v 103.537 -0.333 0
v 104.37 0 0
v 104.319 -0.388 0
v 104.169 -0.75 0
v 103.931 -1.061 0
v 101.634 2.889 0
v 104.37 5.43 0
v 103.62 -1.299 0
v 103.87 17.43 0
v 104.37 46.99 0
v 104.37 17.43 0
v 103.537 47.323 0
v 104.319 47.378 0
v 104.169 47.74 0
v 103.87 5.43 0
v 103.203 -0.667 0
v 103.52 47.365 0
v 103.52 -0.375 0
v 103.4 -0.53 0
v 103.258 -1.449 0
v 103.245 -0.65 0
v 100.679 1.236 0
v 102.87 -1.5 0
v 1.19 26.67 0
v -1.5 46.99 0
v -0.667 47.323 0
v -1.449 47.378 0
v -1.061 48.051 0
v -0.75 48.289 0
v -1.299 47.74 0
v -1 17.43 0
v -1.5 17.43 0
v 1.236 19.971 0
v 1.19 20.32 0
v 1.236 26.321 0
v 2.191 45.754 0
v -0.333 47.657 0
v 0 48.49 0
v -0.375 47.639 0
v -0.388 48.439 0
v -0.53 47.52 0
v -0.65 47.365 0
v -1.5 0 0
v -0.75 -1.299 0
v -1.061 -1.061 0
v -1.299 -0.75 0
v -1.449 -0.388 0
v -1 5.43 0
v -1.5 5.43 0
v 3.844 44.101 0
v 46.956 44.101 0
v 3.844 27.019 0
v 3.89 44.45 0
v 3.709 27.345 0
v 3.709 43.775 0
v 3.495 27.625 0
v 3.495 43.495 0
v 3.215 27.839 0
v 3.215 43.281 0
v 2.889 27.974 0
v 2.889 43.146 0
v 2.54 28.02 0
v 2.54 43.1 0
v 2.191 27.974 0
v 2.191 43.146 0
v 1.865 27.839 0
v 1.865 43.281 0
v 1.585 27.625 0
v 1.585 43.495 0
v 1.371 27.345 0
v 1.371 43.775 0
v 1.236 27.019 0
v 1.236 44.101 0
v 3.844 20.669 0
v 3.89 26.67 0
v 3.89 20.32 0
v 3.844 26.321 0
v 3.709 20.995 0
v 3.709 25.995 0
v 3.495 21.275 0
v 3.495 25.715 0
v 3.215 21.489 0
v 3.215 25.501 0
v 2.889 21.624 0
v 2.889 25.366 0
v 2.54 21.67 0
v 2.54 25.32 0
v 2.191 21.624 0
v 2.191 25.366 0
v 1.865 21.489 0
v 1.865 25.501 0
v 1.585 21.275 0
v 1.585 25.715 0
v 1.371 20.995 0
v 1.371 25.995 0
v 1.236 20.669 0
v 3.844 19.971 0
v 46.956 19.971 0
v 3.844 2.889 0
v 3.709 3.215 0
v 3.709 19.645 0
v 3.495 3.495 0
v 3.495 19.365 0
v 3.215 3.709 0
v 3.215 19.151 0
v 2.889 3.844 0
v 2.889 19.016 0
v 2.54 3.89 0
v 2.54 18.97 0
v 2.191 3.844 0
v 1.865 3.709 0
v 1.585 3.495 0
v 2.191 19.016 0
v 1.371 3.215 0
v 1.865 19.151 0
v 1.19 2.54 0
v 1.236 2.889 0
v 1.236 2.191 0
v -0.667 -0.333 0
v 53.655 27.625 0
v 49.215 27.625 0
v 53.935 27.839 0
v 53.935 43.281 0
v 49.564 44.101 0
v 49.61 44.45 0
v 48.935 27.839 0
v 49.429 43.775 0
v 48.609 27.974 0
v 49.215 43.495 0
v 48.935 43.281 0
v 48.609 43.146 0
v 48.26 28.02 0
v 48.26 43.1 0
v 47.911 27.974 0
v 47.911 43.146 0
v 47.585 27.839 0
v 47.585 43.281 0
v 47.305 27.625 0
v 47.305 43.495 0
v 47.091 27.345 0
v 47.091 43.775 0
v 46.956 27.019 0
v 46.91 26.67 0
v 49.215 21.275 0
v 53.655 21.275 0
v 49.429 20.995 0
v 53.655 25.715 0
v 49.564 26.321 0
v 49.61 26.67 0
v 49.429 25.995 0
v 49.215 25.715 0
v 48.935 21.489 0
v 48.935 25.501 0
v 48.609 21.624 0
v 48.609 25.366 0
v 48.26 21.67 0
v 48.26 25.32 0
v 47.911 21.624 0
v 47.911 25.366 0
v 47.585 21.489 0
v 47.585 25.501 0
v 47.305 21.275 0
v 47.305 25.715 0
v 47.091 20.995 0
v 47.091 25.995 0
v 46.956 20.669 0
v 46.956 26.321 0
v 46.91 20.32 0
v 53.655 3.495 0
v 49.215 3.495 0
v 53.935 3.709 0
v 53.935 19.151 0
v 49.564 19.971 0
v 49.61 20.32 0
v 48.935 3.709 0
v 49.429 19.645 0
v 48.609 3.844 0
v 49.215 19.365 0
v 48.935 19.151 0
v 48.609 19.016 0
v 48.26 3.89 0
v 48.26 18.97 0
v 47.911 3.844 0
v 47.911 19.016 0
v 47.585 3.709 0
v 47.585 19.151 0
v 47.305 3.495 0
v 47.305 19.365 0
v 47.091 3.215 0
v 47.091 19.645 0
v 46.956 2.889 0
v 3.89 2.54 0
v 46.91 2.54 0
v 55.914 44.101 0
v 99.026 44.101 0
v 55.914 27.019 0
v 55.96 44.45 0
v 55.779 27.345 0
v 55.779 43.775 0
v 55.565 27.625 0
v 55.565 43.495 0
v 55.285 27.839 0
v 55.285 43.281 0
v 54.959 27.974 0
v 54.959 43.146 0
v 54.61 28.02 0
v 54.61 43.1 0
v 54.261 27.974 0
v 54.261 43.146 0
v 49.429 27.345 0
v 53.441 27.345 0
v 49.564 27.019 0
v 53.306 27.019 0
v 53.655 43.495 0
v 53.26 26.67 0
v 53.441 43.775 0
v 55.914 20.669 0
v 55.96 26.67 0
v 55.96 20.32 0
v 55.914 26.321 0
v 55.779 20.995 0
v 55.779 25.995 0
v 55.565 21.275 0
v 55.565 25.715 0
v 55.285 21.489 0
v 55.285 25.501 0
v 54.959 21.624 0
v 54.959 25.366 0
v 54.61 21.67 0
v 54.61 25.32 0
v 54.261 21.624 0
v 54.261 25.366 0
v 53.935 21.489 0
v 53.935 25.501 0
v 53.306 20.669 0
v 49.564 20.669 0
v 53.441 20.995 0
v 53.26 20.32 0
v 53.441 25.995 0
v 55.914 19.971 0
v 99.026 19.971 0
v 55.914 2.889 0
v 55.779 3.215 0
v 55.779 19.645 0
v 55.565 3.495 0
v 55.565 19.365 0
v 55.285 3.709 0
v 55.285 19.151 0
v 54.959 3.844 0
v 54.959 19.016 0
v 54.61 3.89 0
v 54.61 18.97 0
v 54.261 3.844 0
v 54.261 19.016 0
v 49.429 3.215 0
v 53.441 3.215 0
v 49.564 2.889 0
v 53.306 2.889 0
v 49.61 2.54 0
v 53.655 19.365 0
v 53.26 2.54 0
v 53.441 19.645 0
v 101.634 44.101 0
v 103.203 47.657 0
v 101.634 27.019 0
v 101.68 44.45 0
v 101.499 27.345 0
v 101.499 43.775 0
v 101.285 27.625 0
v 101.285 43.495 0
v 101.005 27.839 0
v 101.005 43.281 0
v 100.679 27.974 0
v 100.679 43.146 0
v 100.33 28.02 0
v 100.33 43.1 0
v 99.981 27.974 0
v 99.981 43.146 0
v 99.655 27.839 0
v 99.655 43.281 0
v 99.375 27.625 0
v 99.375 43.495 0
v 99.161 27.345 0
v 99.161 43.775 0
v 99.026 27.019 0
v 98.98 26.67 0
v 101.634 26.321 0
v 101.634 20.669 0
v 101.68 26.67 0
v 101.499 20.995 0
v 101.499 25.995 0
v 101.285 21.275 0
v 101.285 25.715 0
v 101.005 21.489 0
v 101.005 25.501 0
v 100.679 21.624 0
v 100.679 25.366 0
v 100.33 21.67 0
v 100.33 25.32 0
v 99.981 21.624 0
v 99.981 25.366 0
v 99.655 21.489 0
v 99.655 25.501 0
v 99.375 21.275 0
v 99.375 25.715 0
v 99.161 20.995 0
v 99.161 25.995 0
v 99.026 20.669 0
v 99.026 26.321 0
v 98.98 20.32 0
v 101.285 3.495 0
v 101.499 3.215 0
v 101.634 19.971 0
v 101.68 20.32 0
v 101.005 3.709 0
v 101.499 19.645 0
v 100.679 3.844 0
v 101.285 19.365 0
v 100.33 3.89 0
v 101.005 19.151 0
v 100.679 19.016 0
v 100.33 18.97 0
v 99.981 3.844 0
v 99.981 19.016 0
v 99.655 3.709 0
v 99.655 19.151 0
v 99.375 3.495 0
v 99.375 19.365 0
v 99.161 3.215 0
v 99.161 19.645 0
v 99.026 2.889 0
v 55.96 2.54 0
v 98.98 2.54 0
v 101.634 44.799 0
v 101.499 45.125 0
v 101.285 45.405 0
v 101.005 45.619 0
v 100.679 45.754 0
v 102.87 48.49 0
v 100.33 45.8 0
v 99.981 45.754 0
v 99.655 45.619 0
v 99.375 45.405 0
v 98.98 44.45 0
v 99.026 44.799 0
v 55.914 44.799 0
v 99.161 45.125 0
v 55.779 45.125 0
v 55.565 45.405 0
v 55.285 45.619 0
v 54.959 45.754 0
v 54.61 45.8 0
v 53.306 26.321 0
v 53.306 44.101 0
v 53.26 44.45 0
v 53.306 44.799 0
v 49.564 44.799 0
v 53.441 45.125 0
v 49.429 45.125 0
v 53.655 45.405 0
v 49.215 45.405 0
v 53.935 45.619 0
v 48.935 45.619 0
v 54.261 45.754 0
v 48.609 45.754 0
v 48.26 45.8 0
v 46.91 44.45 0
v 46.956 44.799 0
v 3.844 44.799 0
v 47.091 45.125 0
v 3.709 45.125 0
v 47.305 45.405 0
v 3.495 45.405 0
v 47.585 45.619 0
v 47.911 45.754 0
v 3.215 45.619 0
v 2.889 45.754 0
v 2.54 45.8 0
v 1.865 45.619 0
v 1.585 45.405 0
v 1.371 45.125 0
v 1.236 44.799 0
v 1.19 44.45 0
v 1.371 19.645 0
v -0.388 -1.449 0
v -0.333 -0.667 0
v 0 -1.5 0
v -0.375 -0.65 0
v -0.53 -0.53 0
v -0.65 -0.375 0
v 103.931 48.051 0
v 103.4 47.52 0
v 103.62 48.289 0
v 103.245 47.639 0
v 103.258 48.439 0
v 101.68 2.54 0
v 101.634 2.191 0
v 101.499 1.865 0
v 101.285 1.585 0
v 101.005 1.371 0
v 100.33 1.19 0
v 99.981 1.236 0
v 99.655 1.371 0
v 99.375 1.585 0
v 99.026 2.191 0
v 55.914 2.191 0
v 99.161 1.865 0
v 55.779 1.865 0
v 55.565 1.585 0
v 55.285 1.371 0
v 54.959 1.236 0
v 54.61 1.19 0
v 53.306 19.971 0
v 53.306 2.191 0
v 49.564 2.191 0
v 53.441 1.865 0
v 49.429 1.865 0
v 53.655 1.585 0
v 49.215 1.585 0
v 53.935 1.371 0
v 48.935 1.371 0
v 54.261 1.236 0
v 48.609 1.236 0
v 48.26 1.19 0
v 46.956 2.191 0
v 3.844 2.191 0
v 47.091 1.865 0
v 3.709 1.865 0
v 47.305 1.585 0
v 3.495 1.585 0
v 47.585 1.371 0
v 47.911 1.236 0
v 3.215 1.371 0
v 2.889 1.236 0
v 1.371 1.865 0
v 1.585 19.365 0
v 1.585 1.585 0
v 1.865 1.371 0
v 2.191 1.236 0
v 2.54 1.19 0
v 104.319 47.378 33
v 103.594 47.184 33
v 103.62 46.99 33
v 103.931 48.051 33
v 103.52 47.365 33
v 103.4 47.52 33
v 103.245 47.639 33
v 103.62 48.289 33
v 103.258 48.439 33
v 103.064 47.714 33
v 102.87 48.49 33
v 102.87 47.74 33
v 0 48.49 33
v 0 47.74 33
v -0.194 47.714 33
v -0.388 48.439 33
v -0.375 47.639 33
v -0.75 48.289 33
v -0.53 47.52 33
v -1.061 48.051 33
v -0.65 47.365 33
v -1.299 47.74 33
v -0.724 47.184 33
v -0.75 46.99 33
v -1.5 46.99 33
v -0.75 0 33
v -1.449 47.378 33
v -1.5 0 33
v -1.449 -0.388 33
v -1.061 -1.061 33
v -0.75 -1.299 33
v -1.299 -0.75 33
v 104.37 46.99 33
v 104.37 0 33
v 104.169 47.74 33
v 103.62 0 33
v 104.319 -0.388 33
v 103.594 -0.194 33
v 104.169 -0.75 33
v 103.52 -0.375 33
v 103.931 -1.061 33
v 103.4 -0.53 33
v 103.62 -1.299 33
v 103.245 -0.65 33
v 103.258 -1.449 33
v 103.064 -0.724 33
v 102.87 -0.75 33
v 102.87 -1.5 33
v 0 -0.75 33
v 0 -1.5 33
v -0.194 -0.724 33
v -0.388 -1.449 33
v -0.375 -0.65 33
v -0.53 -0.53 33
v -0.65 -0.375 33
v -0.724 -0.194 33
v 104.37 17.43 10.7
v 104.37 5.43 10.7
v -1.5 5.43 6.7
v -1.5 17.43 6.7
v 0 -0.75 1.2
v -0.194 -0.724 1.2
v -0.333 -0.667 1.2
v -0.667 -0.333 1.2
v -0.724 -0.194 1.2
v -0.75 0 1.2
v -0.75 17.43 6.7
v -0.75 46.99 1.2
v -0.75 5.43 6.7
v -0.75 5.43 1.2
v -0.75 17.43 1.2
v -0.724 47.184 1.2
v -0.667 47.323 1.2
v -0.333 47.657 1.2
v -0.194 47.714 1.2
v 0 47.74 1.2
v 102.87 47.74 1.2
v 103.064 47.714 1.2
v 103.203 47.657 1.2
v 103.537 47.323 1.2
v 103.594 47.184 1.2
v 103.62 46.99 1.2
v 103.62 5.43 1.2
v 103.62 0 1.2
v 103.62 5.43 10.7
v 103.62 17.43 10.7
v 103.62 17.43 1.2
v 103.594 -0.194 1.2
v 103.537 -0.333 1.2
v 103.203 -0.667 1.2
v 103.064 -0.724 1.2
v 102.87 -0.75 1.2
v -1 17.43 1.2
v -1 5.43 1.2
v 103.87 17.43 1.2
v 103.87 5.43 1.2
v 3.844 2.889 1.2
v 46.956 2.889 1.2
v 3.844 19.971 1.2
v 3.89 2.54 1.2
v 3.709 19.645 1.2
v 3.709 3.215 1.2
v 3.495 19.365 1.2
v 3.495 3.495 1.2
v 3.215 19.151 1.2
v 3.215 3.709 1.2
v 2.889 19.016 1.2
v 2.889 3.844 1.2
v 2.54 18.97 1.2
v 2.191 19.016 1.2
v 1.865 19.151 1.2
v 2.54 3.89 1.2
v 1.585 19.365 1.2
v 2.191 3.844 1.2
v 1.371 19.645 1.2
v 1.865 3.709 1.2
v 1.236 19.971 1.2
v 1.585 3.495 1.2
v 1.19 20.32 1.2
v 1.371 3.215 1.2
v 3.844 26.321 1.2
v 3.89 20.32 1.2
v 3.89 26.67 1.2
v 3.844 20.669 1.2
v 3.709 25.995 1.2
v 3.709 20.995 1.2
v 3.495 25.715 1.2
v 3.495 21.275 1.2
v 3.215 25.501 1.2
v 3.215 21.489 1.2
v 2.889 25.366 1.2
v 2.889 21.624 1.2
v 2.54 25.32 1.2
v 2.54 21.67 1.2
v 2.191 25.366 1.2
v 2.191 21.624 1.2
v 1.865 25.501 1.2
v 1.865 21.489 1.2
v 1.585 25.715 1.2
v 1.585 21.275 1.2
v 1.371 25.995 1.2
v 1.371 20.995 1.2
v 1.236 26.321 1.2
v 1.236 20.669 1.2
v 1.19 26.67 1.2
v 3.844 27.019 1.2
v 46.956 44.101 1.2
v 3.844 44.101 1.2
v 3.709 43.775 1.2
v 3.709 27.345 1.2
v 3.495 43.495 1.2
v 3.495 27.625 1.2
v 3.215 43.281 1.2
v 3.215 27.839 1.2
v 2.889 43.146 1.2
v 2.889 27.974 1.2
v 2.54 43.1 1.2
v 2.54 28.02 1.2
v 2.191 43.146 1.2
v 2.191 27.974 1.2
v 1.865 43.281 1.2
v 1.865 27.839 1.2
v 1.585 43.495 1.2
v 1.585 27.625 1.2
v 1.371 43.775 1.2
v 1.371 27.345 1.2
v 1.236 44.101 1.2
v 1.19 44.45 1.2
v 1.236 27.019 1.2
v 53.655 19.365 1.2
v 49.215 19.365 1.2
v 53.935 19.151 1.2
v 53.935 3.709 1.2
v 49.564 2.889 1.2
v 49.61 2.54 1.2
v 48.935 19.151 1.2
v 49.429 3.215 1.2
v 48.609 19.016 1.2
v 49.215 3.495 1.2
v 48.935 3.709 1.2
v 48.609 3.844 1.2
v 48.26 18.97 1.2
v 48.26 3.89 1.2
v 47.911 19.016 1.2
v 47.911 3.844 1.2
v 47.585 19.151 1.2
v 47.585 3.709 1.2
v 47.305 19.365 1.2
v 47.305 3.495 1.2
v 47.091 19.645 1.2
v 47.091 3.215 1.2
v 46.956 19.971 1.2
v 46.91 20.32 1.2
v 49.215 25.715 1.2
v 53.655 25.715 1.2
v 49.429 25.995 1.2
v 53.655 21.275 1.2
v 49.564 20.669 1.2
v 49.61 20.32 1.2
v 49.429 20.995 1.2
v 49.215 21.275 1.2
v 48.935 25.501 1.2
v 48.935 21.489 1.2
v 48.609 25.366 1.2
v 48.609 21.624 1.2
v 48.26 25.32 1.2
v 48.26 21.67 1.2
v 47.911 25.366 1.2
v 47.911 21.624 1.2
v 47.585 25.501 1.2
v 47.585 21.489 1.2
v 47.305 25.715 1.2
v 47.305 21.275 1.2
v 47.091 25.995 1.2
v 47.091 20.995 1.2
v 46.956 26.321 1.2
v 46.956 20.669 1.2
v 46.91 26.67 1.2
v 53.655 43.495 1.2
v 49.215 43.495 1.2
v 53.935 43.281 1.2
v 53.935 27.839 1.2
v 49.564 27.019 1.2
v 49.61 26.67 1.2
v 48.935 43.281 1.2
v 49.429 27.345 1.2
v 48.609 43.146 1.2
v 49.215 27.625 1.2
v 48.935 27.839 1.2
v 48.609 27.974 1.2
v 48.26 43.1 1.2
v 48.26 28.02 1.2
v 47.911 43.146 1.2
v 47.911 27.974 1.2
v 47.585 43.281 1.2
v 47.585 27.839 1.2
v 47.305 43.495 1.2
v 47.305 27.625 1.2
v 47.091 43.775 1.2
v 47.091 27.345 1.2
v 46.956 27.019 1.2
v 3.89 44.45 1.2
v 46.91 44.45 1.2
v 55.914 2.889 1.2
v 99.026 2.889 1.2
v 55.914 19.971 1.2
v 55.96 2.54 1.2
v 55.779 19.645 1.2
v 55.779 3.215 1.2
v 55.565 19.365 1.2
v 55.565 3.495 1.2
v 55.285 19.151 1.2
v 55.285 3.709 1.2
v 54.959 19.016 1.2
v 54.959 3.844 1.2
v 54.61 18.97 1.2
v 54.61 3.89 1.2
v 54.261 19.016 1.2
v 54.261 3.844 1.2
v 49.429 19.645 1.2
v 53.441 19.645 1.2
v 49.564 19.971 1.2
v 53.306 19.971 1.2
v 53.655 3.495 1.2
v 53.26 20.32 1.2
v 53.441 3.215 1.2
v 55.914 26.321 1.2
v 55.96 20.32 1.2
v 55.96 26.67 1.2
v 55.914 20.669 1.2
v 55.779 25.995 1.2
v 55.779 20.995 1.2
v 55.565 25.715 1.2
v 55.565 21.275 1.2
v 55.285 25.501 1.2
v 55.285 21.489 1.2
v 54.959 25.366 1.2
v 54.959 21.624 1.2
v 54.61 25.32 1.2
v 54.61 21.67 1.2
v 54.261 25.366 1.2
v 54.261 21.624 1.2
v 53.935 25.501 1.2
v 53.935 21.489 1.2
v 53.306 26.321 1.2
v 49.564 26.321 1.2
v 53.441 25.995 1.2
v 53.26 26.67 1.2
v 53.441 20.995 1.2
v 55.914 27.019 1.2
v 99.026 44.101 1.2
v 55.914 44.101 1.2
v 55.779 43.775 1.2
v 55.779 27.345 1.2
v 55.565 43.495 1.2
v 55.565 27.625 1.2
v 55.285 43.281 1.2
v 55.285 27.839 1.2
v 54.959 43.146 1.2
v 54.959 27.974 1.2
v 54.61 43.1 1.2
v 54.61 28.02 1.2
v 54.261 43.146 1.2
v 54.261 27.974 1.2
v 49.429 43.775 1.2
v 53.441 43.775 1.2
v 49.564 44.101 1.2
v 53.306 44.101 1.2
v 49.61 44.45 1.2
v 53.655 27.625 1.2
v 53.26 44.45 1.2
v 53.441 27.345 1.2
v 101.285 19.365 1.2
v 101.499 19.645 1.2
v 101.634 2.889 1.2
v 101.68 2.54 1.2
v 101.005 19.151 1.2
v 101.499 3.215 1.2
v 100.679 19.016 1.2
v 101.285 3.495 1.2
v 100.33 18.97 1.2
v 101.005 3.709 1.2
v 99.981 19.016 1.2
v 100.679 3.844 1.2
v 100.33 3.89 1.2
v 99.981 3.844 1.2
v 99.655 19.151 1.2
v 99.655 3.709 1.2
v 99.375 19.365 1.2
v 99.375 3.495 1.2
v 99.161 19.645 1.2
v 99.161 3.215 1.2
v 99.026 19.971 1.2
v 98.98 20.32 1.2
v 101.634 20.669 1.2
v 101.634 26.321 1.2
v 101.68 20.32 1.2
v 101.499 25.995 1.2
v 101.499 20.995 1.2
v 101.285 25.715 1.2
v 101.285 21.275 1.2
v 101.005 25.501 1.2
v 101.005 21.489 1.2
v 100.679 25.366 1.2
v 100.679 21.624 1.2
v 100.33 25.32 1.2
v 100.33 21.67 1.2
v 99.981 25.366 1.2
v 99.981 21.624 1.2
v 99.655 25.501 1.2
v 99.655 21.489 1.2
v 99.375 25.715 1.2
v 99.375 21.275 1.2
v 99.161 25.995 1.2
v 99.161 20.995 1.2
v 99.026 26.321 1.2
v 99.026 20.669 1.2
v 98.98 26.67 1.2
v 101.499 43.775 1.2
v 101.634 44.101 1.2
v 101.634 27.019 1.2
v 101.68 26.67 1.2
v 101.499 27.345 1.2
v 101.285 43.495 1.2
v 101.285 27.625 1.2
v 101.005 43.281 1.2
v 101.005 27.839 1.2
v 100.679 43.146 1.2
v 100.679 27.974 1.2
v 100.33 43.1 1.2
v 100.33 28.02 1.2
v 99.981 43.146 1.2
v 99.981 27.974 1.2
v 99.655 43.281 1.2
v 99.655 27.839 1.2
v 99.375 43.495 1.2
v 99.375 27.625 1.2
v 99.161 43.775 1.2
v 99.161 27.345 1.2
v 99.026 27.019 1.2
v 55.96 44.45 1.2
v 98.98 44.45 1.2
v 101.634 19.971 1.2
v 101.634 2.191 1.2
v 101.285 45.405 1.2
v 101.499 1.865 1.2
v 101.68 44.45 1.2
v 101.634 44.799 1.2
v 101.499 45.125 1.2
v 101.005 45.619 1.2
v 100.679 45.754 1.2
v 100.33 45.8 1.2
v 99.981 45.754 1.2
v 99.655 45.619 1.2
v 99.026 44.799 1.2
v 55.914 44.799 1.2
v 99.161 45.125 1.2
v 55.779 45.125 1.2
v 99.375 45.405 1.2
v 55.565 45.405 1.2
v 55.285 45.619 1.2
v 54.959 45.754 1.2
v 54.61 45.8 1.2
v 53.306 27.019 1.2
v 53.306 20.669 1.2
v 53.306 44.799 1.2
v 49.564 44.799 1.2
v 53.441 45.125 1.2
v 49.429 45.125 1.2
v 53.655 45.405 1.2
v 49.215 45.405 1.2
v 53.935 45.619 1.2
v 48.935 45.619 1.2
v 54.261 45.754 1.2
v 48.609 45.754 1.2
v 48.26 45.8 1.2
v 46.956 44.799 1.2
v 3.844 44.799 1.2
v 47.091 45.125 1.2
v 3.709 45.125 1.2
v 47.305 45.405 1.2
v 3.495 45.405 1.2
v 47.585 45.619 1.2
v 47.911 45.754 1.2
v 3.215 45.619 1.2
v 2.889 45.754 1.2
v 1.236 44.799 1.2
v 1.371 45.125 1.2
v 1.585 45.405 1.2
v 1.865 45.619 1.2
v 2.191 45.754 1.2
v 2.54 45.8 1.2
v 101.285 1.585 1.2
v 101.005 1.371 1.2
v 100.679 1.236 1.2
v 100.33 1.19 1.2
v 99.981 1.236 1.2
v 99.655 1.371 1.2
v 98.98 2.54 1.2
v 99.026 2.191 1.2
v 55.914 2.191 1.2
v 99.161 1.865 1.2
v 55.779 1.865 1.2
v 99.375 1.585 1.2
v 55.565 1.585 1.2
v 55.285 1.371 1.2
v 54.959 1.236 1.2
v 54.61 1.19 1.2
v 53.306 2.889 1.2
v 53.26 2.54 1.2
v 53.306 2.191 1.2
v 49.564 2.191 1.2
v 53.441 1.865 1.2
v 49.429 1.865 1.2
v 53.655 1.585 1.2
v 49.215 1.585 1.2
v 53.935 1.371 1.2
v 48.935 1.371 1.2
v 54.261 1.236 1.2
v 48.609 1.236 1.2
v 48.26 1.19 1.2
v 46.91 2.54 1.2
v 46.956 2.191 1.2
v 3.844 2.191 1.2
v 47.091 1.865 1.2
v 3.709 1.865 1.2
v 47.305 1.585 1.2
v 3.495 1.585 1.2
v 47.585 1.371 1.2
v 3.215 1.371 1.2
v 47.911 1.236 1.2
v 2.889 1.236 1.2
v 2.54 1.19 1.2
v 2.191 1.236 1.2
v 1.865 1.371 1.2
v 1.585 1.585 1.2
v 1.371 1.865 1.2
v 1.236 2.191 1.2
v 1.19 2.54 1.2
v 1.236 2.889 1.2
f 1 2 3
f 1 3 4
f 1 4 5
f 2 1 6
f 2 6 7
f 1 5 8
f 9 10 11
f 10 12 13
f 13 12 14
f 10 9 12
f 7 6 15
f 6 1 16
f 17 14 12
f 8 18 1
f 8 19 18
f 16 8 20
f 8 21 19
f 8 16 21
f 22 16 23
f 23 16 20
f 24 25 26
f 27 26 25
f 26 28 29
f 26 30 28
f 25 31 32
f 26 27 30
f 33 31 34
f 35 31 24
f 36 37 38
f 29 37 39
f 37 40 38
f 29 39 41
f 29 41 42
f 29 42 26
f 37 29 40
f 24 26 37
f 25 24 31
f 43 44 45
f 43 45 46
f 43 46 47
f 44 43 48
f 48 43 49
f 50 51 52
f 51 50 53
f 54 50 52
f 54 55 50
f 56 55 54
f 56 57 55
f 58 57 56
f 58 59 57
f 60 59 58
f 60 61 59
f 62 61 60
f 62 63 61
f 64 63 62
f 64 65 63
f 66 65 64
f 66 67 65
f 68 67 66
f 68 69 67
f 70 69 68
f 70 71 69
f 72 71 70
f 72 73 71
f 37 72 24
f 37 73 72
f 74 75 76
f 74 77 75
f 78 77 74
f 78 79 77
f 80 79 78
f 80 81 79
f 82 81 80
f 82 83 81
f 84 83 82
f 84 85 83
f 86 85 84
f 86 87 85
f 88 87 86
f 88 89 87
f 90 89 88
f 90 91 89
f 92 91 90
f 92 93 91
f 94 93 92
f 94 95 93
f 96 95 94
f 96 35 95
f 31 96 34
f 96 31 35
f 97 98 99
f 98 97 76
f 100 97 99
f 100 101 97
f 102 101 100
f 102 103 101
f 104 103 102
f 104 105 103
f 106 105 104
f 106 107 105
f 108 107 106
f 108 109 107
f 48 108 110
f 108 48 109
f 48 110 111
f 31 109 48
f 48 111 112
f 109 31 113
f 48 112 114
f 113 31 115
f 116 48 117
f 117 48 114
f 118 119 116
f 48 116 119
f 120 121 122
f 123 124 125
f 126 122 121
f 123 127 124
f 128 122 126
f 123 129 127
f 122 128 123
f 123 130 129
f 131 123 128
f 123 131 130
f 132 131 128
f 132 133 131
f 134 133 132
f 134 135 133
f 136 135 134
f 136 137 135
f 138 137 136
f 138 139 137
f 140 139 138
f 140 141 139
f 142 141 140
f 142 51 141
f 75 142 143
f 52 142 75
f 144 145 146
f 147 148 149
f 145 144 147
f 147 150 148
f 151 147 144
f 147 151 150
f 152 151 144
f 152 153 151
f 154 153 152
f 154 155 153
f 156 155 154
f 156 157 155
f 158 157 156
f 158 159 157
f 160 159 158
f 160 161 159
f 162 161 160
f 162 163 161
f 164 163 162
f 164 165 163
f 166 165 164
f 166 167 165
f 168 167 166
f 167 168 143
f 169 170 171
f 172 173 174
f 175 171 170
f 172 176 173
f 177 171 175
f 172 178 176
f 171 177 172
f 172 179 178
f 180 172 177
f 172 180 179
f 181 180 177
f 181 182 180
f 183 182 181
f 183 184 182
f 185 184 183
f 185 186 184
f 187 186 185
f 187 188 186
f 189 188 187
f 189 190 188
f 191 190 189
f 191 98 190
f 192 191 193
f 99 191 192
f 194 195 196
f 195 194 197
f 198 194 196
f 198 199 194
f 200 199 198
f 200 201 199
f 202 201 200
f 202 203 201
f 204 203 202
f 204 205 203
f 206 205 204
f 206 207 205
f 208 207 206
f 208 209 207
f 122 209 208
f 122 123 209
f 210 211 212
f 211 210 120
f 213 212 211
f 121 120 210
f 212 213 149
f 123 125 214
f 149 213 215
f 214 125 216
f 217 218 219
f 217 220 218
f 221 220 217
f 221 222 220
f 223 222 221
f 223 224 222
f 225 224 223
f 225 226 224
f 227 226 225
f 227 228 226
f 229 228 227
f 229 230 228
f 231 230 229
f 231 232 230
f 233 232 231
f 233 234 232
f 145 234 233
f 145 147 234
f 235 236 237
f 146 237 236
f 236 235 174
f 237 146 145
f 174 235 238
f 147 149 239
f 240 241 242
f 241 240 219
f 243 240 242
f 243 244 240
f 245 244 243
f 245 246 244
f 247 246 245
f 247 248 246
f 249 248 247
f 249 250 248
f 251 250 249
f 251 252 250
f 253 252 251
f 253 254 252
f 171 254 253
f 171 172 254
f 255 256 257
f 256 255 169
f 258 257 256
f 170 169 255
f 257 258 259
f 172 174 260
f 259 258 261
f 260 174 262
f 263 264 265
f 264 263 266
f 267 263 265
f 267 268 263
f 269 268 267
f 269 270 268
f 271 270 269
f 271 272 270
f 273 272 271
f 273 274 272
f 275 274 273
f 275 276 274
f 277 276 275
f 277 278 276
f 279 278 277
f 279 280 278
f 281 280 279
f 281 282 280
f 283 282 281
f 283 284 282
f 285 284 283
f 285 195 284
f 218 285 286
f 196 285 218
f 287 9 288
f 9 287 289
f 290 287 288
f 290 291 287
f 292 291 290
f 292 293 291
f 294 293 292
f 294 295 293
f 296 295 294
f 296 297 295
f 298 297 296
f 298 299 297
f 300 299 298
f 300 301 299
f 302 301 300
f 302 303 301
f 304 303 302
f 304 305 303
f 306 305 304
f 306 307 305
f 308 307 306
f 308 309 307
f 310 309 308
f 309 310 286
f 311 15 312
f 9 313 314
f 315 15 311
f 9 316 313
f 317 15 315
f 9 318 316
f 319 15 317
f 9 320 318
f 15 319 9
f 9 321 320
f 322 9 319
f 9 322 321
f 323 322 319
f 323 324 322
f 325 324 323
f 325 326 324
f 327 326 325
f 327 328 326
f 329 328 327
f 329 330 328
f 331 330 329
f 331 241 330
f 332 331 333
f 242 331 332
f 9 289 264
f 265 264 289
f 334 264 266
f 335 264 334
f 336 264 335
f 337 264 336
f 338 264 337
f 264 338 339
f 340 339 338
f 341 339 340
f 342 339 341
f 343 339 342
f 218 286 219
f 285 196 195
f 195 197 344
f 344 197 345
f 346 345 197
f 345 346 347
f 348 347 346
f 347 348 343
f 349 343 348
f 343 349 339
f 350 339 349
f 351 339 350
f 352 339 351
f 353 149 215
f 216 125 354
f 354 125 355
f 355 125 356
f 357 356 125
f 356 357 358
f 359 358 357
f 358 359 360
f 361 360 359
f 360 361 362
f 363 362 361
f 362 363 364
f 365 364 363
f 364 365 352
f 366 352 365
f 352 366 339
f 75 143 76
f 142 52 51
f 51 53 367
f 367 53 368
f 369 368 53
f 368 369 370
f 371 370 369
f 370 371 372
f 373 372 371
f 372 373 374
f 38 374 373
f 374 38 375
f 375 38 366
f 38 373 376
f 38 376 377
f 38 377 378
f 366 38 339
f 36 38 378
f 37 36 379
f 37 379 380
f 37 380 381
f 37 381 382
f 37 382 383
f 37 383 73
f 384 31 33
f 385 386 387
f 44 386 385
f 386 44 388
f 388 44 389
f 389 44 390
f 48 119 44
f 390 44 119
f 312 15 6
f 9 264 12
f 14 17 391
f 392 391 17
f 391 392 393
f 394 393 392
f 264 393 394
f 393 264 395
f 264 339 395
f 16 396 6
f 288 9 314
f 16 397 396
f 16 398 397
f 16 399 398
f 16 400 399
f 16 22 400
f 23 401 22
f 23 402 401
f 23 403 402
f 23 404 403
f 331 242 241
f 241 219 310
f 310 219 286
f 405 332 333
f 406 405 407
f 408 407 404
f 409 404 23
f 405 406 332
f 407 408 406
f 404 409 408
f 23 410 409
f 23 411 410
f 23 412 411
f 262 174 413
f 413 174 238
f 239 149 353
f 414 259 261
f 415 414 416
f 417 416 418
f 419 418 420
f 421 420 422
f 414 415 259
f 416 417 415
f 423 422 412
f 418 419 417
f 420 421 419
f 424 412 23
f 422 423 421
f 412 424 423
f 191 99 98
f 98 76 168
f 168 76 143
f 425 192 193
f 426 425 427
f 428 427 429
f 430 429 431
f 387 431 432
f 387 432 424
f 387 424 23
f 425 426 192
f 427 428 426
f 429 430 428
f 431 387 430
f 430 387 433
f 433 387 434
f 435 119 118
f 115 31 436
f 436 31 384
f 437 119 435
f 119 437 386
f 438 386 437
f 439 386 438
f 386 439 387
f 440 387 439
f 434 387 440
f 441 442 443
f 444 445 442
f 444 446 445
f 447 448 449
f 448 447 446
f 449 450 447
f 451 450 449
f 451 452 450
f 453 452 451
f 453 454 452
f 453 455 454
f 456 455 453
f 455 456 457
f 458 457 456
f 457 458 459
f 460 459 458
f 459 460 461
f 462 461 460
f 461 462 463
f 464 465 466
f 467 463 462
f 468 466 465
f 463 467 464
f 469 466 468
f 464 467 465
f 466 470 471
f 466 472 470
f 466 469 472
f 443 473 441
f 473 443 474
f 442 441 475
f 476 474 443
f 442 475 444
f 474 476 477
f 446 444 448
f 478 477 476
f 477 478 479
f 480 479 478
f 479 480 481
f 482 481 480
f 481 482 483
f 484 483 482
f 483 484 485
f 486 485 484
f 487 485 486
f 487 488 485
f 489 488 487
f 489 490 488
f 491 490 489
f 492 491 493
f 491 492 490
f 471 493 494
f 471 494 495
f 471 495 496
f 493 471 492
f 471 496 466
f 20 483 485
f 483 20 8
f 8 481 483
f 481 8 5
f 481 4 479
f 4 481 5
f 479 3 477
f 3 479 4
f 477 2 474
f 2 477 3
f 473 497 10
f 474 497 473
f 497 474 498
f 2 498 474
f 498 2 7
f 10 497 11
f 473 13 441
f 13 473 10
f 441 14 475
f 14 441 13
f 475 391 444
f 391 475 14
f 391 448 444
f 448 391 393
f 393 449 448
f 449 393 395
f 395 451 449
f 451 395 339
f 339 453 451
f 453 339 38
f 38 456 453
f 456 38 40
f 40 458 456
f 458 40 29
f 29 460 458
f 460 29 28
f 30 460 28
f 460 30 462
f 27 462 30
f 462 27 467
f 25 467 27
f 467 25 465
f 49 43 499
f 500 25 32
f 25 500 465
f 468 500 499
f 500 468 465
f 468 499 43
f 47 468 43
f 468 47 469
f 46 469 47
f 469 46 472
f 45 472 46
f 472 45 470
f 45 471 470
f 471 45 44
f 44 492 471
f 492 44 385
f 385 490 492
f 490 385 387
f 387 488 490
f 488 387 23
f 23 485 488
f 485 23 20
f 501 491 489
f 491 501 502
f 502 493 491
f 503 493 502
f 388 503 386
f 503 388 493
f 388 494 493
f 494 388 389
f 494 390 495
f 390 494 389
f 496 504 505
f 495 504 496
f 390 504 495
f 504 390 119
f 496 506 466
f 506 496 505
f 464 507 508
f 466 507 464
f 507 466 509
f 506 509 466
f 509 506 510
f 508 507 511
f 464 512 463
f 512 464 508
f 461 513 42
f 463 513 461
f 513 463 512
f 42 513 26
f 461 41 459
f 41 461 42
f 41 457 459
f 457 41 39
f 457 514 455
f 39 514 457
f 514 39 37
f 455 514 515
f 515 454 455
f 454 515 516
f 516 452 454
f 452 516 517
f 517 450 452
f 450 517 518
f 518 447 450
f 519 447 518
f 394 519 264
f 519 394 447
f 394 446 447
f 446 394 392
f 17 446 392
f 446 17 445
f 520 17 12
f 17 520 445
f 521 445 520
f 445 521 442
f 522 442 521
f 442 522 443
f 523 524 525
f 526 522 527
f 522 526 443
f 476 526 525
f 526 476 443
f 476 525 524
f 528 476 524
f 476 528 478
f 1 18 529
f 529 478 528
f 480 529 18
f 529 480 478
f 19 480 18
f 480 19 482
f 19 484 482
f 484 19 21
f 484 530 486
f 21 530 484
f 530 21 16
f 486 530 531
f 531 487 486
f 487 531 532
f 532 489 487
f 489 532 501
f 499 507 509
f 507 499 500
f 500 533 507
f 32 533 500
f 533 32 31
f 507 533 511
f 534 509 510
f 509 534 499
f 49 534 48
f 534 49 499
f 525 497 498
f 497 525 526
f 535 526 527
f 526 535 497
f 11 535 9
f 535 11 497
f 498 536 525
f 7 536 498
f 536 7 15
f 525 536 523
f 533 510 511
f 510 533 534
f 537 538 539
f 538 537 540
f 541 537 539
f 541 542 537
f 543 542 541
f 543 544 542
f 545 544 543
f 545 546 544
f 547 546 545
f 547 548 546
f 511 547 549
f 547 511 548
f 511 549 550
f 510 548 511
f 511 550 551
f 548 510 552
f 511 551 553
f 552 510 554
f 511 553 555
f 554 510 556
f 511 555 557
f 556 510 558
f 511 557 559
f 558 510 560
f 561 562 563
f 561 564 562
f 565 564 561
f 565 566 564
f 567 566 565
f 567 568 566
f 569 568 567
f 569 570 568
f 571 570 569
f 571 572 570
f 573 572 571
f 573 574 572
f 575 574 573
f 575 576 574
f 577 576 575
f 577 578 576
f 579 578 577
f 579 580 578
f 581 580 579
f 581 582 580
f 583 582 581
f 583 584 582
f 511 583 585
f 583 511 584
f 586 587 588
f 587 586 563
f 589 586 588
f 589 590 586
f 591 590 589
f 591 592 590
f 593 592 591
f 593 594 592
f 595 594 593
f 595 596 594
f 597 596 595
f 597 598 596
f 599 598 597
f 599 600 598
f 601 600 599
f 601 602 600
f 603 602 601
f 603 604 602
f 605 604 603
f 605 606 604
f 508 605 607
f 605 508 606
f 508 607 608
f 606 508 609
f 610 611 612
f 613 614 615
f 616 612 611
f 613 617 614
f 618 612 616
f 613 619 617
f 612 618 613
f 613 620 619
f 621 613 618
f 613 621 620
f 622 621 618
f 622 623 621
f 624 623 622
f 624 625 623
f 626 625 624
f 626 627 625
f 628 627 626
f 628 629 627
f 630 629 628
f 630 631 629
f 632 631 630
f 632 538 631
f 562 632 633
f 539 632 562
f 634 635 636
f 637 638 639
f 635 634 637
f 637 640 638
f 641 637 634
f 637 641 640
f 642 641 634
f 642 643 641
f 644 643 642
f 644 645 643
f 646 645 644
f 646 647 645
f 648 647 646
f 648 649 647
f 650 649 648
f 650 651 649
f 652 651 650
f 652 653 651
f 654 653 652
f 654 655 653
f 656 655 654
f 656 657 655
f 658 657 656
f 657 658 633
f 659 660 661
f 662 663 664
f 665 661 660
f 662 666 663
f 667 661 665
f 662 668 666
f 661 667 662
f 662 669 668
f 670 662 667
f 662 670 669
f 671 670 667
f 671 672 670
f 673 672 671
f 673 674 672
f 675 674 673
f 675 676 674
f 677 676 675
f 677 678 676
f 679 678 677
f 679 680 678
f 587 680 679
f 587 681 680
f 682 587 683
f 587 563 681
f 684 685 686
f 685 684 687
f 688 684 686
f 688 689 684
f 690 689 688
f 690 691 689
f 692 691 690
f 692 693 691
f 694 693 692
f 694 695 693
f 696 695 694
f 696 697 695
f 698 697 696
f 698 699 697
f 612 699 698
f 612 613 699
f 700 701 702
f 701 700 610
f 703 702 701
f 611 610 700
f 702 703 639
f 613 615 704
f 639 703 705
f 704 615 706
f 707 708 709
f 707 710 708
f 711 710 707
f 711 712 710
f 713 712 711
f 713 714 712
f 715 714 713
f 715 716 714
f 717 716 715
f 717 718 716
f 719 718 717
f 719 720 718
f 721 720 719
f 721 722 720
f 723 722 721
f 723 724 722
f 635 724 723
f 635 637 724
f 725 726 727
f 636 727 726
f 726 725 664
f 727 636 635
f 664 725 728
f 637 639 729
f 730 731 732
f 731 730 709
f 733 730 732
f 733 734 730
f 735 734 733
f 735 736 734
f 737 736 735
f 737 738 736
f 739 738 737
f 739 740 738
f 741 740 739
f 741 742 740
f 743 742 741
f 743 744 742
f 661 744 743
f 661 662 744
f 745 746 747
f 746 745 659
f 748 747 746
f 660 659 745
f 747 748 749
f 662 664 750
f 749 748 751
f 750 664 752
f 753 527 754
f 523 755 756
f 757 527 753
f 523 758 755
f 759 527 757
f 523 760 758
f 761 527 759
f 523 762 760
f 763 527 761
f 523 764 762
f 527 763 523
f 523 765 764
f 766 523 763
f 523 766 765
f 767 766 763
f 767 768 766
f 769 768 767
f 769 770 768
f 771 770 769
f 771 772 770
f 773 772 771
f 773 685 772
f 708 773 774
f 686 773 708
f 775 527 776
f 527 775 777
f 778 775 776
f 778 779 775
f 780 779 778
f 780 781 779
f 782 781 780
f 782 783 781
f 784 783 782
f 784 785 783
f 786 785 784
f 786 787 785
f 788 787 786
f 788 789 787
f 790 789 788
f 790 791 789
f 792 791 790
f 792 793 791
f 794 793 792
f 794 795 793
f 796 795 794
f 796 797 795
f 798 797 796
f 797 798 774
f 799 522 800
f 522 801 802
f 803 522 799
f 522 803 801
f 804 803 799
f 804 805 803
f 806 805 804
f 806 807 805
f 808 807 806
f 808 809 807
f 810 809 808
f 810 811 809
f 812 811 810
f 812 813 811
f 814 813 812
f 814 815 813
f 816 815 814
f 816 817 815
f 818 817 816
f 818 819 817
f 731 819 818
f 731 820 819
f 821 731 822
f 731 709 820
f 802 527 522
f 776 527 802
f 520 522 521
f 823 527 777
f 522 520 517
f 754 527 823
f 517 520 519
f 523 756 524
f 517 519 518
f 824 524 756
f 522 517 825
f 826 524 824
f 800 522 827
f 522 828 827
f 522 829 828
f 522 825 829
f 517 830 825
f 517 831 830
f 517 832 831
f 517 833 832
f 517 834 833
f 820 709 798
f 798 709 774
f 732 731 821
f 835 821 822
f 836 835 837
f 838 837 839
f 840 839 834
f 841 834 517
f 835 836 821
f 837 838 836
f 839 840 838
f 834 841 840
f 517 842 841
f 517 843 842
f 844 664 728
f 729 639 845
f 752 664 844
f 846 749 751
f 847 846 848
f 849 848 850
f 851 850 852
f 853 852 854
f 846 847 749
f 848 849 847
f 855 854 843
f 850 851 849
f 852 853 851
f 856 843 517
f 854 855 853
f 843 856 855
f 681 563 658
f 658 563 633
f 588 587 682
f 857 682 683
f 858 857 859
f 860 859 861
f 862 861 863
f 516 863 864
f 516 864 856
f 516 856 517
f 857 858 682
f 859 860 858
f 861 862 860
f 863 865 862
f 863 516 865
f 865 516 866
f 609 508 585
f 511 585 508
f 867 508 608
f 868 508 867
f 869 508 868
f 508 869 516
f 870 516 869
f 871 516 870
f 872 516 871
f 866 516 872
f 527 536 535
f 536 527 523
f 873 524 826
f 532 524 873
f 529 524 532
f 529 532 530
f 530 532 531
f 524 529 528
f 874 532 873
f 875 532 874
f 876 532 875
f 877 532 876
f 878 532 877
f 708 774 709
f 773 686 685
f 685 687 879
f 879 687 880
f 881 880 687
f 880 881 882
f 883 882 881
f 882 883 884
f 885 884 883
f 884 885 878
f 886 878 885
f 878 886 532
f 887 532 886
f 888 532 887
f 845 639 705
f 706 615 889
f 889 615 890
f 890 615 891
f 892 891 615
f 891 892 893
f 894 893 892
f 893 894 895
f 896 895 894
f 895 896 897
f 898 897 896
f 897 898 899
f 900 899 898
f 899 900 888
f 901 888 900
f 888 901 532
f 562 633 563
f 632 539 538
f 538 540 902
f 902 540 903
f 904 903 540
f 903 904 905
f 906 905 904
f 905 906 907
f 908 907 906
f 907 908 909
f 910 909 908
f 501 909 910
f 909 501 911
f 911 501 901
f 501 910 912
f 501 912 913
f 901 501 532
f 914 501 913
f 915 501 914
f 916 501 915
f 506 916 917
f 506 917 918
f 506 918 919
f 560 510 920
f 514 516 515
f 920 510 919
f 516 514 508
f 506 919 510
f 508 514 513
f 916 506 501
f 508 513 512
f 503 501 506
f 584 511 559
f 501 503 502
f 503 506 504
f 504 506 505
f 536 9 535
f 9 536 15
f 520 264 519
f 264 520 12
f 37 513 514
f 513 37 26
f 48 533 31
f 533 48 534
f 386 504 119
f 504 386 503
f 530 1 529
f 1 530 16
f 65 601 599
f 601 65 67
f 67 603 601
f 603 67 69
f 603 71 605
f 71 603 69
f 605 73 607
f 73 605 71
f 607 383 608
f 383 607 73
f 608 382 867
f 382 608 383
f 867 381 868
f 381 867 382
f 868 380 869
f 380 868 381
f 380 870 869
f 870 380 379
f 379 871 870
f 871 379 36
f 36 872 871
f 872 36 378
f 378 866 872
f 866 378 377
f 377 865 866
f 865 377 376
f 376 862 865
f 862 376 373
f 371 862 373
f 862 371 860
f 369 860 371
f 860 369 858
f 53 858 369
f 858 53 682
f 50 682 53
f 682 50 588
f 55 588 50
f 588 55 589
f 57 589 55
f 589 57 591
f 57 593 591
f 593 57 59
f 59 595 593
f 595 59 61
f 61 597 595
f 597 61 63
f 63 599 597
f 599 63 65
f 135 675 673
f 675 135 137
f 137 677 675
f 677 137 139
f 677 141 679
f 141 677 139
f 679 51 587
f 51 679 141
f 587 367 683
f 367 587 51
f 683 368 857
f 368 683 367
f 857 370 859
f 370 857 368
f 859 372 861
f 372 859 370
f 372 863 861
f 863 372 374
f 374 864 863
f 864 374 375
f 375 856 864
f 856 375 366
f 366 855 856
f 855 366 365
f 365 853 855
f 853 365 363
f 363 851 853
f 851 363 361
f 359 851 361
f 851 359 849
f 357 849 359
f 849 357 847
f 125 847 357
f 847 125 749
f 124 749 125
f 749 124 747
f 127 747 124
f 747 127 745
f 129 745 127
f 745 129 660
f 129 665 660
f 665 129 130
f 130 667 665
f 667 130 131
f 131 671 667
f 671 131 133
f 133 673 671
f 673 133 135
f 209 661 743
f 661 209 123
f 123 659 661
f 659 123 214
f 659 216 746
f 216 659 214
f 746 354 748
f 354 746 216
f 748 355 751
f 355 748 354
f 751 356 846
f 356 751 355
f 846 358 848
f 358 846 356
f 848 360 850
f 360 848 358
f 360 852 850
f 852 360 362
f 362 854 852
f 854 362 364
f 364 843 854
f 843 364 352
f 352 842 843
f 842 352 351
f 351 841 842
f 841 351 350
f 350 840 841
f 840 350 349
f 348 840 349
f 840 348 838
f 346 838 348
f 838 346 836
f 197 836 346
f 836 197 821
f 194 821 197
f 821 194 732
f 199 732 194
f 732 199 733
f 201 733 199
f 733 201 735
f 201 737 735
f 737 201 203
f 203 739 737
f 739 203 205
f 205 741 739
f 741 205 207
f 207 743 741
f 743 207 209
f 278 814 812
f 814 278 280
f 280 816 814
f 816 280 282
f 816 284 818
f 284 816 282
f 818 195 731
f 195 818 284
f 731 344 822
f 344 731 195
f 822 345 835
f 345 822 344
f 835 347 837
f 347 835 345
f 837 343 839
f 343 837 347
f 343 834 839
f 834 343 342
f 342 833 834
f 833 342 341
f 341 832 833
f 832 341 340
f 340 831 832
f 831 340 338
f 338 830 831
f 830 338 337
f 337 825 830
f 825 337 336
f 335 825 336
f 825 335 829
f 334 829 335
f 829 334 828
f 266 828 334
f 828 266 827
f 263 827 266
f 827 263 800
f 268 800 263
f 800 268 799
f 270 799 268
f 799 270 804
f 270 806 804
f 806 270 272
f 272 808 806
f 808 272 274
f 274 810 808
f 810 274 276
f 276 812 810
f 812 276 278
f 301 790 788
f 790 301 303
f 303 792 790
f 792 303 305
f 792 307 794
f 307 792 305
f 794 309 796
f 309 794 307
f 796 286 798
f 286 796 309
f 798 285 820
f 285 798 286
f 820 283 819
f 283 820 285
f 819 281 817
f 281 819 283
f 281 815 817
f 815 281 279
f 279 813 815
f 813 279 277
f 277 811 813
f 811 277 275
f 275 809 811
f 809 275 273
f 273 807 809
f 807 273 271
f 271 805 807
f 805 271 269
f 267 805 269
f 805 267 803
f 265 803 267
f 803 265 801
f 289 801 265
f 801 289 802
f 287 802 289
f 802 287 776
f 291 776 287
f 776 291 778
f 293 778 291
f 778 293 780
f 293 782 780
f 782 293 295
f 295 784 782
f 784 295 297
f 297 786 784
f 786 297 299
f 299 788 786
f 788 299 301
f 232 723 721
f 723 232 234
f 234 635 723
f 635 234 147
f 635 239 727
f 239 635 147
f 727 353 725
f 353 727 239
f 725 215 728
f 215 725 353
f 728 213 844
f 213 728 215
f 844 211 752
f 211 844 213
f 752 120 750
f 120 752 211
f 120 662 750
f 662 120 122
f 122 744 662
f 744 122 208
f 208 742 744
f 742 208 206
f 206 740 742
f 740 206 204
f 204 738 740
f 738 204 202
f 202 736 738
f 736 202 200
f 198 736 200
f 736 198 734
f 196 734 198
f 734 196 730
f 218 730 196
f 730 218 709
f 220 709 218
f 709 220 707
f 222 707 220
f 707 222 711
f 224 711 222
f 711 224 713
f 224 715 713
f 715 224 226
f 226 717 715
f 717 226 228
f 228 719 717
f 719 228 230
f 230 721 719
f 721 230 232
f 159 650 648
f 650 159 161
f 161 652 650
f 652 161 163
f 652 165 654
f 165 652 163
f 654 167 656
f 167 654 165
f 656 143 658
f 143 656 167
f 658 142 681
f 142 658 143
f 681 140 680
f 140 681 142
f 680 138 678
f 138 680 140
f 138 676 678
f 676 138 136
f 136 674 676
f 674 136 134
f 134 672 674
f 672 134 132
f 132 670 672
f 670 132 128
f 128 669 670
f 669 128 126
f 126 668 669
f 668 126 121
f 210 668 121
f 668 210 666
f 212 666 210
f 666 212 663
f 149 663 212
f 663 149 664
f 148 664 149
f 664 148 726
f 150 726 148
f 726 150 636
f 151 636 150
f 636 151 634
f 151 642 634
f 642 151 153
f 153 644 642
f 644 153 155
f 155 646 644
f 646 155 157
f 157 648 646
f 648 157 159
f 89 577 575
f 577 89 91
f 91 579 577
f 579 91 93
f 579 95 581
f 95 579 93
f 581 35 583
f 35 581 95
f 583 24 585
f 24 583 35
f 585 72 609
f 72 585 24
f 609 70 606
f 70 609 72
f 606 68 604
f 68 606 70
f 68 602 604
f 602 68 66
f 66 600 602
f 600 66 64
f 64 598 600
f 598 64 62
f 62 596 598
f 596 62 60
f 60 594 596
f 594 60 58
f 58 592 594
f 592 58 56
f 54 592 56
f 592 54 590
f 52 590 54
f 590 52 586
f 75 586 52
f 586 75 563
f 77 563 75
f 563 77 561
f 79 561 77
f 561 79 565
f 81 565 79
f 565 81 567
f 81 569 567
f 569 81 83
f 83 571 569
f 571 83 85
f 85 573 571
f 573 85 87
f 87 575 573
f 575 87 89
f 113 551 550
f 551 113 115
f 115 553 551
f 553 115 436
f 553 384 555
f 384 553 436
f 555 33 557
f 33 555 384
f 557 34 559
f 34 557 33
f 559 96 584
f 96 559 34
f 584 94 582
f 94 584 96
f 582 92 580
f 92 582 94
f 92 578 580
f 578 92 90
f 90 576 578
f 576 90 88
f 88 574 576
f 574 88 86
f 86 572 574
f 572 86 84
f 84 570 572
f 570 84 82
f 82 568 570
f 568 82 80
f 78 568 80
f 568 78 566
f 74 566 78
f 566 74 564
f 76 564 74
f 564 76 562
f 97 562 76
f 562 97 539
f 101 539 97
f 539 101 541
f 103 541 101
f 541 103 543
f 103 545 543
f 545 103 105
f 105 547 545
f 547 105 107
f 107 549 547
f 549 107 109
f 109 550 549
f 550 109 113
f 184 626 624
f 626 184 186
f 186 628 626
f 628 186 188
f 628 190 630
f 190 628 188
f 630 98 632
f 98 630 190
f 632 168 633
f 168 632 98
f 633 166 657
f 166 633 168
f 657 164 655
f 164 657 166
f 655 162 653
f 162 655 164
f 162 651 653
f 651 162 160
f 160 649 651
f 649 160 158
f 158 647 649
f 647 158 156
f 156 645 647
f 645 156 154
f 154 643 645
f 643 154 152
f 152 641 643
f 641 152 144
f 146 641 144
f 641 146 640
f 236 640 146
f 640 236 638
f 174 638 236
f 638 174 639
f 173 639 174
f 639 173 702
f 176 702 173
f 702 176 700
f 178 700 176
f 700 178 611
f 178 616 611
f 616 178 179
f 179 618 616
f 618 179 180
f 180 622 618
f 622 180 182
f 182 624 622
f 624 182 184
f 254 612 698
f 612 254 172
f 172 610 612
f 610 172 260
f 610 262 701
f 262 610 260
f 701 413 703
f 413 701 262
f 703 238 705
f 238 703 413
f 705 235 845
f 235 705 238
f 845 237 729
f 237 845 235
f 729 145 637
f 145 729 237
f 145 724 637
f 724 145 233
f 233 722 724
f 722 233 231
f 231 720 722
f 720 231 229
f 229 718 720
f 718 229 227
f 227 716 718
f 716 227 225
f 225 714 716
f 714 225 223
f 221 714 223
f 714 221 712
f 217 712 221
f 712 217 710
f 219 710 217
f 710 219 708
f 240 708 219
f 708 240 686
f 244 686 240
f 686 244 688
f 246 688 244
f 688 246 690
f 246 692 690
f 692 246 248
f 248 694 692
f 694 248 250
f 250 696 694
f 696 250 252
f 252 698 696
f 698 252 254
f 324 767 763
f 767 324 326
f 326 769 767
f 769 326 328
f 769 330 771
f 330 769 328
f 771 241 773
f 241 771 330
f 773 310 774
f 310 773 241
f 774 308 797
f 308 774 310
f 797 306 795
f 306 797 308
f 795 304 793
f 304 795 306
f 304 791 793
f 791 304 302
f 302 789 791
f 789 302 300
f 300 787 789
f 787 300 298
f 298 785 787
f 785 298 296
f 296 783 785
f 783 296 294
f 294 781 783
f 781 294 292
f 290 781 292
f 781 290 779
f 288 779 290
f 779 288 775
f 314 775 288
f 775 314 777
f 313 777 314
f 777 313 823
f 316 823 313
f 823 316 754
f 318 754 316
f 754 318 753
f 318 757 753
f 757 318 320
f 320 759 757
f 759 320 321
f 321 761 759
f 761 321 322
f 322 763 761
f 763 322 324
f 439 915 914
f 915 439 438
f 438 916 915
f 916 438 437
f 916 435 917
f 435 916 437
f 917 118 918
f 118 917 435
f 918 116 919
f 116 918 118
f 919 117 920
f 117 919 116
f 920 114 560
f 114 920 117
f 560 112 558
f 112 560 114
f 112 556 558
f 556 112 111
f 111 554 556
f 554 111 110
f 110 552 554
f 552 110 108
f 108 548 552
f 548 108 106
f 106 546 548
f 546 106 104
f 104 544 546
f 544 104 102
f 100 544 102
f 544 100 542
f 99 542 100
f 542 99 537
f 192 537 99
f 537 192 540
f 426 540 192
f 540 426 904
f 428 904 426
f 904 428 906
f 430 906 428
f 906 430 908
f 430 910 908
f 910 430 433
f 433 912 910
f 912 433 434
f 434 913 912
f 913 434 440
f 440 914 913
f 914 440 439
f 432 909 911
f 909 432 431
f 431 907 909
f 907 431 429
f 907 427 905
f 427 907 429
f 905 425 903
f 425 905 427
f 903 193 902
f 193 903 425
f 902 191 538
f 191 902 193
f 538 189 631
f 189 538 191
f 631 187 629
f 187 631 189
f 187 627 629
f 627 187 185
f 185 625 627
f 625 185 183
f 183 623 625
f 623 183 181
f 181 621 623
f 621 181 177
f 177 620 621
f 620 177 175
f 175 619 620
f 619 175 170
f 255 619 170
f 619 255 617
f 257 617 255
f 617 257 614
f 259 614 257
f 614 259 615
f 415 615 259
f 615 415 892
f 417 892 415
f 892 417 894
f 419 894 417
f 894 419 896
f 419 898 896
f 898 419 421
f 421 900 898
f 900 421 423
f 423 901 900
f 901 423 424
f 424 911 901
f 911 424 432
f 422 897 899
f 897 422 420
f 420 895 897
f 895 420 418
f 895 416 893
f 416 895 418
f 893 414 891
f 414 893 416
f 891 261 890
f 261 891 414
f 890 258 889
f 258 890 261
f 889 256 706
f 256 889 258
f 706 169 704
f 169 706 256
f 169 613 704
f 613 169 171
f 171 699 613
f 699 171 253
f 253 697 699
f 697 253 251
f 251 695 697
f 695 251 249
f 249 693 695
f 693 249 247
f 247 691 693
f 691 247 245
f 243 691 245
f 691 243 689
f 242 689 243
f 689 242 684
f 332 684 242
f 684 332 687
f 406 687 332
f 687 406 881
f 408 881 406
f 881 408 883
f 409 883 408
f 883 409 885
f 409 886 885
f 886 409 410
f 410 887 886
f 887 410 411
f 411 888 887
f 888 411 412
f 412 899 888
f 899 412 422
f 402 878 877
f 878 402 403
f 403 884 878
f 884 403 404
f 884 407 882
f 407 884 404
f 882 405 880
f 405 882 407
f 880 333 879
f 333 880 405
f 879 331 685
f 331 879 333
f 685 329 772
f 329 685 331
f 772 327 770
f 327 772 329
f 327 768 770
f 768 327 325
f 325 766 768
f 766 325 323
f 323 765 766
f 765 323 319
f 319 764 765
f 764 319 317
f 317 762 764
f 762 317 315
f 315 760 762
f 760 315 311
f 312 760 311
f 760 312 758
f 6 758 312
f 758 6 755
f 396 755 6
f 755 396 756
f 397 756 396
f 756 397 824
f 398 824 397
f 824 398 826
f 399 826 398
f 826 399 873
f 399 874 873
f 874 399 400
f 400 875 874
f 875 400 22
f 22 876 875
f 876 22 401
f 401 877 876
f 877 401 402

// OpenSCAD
height = 33;

function in(x) = x * 25.4;
module featherholes(d=2.7) {
    for(x=[in(.1), in(1.9)])
    for(y=[in(.1), in(0.8)])
    translate([x,y])
    circle(d=d);
}

module quadholes() {
    for(x=[in(0), in(2.05)])
    for(y=[in(0), in(0.95)])
    translate([x,y])
    featherholes();

}

if(1) {
    linear_extrude(height=1.2)
    difference() {
        offset(1)
        square([in(4.05), in(1.85)]);
        quadholes($fn=24);
    }

    difference() {
        linear_extrude(height=height, convexity=4)
        difference() {
            offset(1.5, $fn=24)
            square([in(4.05), in(1.85)]);
            offset(.75, $fn=24)
            square([in(4.05), in(1.85)]);
        }

        translate([0, in(0.45), 3.2])
        cube([5, 12, 7], center=true);

        translate([in(4.05), in(0.45), 3.2])
        cube([5, 12, 15], center=true);
    }

} else {
    difference() {
        offset(1)
        square([in(4.05), in(1.85)]);
        quadholes($fn=24);
    }
}
